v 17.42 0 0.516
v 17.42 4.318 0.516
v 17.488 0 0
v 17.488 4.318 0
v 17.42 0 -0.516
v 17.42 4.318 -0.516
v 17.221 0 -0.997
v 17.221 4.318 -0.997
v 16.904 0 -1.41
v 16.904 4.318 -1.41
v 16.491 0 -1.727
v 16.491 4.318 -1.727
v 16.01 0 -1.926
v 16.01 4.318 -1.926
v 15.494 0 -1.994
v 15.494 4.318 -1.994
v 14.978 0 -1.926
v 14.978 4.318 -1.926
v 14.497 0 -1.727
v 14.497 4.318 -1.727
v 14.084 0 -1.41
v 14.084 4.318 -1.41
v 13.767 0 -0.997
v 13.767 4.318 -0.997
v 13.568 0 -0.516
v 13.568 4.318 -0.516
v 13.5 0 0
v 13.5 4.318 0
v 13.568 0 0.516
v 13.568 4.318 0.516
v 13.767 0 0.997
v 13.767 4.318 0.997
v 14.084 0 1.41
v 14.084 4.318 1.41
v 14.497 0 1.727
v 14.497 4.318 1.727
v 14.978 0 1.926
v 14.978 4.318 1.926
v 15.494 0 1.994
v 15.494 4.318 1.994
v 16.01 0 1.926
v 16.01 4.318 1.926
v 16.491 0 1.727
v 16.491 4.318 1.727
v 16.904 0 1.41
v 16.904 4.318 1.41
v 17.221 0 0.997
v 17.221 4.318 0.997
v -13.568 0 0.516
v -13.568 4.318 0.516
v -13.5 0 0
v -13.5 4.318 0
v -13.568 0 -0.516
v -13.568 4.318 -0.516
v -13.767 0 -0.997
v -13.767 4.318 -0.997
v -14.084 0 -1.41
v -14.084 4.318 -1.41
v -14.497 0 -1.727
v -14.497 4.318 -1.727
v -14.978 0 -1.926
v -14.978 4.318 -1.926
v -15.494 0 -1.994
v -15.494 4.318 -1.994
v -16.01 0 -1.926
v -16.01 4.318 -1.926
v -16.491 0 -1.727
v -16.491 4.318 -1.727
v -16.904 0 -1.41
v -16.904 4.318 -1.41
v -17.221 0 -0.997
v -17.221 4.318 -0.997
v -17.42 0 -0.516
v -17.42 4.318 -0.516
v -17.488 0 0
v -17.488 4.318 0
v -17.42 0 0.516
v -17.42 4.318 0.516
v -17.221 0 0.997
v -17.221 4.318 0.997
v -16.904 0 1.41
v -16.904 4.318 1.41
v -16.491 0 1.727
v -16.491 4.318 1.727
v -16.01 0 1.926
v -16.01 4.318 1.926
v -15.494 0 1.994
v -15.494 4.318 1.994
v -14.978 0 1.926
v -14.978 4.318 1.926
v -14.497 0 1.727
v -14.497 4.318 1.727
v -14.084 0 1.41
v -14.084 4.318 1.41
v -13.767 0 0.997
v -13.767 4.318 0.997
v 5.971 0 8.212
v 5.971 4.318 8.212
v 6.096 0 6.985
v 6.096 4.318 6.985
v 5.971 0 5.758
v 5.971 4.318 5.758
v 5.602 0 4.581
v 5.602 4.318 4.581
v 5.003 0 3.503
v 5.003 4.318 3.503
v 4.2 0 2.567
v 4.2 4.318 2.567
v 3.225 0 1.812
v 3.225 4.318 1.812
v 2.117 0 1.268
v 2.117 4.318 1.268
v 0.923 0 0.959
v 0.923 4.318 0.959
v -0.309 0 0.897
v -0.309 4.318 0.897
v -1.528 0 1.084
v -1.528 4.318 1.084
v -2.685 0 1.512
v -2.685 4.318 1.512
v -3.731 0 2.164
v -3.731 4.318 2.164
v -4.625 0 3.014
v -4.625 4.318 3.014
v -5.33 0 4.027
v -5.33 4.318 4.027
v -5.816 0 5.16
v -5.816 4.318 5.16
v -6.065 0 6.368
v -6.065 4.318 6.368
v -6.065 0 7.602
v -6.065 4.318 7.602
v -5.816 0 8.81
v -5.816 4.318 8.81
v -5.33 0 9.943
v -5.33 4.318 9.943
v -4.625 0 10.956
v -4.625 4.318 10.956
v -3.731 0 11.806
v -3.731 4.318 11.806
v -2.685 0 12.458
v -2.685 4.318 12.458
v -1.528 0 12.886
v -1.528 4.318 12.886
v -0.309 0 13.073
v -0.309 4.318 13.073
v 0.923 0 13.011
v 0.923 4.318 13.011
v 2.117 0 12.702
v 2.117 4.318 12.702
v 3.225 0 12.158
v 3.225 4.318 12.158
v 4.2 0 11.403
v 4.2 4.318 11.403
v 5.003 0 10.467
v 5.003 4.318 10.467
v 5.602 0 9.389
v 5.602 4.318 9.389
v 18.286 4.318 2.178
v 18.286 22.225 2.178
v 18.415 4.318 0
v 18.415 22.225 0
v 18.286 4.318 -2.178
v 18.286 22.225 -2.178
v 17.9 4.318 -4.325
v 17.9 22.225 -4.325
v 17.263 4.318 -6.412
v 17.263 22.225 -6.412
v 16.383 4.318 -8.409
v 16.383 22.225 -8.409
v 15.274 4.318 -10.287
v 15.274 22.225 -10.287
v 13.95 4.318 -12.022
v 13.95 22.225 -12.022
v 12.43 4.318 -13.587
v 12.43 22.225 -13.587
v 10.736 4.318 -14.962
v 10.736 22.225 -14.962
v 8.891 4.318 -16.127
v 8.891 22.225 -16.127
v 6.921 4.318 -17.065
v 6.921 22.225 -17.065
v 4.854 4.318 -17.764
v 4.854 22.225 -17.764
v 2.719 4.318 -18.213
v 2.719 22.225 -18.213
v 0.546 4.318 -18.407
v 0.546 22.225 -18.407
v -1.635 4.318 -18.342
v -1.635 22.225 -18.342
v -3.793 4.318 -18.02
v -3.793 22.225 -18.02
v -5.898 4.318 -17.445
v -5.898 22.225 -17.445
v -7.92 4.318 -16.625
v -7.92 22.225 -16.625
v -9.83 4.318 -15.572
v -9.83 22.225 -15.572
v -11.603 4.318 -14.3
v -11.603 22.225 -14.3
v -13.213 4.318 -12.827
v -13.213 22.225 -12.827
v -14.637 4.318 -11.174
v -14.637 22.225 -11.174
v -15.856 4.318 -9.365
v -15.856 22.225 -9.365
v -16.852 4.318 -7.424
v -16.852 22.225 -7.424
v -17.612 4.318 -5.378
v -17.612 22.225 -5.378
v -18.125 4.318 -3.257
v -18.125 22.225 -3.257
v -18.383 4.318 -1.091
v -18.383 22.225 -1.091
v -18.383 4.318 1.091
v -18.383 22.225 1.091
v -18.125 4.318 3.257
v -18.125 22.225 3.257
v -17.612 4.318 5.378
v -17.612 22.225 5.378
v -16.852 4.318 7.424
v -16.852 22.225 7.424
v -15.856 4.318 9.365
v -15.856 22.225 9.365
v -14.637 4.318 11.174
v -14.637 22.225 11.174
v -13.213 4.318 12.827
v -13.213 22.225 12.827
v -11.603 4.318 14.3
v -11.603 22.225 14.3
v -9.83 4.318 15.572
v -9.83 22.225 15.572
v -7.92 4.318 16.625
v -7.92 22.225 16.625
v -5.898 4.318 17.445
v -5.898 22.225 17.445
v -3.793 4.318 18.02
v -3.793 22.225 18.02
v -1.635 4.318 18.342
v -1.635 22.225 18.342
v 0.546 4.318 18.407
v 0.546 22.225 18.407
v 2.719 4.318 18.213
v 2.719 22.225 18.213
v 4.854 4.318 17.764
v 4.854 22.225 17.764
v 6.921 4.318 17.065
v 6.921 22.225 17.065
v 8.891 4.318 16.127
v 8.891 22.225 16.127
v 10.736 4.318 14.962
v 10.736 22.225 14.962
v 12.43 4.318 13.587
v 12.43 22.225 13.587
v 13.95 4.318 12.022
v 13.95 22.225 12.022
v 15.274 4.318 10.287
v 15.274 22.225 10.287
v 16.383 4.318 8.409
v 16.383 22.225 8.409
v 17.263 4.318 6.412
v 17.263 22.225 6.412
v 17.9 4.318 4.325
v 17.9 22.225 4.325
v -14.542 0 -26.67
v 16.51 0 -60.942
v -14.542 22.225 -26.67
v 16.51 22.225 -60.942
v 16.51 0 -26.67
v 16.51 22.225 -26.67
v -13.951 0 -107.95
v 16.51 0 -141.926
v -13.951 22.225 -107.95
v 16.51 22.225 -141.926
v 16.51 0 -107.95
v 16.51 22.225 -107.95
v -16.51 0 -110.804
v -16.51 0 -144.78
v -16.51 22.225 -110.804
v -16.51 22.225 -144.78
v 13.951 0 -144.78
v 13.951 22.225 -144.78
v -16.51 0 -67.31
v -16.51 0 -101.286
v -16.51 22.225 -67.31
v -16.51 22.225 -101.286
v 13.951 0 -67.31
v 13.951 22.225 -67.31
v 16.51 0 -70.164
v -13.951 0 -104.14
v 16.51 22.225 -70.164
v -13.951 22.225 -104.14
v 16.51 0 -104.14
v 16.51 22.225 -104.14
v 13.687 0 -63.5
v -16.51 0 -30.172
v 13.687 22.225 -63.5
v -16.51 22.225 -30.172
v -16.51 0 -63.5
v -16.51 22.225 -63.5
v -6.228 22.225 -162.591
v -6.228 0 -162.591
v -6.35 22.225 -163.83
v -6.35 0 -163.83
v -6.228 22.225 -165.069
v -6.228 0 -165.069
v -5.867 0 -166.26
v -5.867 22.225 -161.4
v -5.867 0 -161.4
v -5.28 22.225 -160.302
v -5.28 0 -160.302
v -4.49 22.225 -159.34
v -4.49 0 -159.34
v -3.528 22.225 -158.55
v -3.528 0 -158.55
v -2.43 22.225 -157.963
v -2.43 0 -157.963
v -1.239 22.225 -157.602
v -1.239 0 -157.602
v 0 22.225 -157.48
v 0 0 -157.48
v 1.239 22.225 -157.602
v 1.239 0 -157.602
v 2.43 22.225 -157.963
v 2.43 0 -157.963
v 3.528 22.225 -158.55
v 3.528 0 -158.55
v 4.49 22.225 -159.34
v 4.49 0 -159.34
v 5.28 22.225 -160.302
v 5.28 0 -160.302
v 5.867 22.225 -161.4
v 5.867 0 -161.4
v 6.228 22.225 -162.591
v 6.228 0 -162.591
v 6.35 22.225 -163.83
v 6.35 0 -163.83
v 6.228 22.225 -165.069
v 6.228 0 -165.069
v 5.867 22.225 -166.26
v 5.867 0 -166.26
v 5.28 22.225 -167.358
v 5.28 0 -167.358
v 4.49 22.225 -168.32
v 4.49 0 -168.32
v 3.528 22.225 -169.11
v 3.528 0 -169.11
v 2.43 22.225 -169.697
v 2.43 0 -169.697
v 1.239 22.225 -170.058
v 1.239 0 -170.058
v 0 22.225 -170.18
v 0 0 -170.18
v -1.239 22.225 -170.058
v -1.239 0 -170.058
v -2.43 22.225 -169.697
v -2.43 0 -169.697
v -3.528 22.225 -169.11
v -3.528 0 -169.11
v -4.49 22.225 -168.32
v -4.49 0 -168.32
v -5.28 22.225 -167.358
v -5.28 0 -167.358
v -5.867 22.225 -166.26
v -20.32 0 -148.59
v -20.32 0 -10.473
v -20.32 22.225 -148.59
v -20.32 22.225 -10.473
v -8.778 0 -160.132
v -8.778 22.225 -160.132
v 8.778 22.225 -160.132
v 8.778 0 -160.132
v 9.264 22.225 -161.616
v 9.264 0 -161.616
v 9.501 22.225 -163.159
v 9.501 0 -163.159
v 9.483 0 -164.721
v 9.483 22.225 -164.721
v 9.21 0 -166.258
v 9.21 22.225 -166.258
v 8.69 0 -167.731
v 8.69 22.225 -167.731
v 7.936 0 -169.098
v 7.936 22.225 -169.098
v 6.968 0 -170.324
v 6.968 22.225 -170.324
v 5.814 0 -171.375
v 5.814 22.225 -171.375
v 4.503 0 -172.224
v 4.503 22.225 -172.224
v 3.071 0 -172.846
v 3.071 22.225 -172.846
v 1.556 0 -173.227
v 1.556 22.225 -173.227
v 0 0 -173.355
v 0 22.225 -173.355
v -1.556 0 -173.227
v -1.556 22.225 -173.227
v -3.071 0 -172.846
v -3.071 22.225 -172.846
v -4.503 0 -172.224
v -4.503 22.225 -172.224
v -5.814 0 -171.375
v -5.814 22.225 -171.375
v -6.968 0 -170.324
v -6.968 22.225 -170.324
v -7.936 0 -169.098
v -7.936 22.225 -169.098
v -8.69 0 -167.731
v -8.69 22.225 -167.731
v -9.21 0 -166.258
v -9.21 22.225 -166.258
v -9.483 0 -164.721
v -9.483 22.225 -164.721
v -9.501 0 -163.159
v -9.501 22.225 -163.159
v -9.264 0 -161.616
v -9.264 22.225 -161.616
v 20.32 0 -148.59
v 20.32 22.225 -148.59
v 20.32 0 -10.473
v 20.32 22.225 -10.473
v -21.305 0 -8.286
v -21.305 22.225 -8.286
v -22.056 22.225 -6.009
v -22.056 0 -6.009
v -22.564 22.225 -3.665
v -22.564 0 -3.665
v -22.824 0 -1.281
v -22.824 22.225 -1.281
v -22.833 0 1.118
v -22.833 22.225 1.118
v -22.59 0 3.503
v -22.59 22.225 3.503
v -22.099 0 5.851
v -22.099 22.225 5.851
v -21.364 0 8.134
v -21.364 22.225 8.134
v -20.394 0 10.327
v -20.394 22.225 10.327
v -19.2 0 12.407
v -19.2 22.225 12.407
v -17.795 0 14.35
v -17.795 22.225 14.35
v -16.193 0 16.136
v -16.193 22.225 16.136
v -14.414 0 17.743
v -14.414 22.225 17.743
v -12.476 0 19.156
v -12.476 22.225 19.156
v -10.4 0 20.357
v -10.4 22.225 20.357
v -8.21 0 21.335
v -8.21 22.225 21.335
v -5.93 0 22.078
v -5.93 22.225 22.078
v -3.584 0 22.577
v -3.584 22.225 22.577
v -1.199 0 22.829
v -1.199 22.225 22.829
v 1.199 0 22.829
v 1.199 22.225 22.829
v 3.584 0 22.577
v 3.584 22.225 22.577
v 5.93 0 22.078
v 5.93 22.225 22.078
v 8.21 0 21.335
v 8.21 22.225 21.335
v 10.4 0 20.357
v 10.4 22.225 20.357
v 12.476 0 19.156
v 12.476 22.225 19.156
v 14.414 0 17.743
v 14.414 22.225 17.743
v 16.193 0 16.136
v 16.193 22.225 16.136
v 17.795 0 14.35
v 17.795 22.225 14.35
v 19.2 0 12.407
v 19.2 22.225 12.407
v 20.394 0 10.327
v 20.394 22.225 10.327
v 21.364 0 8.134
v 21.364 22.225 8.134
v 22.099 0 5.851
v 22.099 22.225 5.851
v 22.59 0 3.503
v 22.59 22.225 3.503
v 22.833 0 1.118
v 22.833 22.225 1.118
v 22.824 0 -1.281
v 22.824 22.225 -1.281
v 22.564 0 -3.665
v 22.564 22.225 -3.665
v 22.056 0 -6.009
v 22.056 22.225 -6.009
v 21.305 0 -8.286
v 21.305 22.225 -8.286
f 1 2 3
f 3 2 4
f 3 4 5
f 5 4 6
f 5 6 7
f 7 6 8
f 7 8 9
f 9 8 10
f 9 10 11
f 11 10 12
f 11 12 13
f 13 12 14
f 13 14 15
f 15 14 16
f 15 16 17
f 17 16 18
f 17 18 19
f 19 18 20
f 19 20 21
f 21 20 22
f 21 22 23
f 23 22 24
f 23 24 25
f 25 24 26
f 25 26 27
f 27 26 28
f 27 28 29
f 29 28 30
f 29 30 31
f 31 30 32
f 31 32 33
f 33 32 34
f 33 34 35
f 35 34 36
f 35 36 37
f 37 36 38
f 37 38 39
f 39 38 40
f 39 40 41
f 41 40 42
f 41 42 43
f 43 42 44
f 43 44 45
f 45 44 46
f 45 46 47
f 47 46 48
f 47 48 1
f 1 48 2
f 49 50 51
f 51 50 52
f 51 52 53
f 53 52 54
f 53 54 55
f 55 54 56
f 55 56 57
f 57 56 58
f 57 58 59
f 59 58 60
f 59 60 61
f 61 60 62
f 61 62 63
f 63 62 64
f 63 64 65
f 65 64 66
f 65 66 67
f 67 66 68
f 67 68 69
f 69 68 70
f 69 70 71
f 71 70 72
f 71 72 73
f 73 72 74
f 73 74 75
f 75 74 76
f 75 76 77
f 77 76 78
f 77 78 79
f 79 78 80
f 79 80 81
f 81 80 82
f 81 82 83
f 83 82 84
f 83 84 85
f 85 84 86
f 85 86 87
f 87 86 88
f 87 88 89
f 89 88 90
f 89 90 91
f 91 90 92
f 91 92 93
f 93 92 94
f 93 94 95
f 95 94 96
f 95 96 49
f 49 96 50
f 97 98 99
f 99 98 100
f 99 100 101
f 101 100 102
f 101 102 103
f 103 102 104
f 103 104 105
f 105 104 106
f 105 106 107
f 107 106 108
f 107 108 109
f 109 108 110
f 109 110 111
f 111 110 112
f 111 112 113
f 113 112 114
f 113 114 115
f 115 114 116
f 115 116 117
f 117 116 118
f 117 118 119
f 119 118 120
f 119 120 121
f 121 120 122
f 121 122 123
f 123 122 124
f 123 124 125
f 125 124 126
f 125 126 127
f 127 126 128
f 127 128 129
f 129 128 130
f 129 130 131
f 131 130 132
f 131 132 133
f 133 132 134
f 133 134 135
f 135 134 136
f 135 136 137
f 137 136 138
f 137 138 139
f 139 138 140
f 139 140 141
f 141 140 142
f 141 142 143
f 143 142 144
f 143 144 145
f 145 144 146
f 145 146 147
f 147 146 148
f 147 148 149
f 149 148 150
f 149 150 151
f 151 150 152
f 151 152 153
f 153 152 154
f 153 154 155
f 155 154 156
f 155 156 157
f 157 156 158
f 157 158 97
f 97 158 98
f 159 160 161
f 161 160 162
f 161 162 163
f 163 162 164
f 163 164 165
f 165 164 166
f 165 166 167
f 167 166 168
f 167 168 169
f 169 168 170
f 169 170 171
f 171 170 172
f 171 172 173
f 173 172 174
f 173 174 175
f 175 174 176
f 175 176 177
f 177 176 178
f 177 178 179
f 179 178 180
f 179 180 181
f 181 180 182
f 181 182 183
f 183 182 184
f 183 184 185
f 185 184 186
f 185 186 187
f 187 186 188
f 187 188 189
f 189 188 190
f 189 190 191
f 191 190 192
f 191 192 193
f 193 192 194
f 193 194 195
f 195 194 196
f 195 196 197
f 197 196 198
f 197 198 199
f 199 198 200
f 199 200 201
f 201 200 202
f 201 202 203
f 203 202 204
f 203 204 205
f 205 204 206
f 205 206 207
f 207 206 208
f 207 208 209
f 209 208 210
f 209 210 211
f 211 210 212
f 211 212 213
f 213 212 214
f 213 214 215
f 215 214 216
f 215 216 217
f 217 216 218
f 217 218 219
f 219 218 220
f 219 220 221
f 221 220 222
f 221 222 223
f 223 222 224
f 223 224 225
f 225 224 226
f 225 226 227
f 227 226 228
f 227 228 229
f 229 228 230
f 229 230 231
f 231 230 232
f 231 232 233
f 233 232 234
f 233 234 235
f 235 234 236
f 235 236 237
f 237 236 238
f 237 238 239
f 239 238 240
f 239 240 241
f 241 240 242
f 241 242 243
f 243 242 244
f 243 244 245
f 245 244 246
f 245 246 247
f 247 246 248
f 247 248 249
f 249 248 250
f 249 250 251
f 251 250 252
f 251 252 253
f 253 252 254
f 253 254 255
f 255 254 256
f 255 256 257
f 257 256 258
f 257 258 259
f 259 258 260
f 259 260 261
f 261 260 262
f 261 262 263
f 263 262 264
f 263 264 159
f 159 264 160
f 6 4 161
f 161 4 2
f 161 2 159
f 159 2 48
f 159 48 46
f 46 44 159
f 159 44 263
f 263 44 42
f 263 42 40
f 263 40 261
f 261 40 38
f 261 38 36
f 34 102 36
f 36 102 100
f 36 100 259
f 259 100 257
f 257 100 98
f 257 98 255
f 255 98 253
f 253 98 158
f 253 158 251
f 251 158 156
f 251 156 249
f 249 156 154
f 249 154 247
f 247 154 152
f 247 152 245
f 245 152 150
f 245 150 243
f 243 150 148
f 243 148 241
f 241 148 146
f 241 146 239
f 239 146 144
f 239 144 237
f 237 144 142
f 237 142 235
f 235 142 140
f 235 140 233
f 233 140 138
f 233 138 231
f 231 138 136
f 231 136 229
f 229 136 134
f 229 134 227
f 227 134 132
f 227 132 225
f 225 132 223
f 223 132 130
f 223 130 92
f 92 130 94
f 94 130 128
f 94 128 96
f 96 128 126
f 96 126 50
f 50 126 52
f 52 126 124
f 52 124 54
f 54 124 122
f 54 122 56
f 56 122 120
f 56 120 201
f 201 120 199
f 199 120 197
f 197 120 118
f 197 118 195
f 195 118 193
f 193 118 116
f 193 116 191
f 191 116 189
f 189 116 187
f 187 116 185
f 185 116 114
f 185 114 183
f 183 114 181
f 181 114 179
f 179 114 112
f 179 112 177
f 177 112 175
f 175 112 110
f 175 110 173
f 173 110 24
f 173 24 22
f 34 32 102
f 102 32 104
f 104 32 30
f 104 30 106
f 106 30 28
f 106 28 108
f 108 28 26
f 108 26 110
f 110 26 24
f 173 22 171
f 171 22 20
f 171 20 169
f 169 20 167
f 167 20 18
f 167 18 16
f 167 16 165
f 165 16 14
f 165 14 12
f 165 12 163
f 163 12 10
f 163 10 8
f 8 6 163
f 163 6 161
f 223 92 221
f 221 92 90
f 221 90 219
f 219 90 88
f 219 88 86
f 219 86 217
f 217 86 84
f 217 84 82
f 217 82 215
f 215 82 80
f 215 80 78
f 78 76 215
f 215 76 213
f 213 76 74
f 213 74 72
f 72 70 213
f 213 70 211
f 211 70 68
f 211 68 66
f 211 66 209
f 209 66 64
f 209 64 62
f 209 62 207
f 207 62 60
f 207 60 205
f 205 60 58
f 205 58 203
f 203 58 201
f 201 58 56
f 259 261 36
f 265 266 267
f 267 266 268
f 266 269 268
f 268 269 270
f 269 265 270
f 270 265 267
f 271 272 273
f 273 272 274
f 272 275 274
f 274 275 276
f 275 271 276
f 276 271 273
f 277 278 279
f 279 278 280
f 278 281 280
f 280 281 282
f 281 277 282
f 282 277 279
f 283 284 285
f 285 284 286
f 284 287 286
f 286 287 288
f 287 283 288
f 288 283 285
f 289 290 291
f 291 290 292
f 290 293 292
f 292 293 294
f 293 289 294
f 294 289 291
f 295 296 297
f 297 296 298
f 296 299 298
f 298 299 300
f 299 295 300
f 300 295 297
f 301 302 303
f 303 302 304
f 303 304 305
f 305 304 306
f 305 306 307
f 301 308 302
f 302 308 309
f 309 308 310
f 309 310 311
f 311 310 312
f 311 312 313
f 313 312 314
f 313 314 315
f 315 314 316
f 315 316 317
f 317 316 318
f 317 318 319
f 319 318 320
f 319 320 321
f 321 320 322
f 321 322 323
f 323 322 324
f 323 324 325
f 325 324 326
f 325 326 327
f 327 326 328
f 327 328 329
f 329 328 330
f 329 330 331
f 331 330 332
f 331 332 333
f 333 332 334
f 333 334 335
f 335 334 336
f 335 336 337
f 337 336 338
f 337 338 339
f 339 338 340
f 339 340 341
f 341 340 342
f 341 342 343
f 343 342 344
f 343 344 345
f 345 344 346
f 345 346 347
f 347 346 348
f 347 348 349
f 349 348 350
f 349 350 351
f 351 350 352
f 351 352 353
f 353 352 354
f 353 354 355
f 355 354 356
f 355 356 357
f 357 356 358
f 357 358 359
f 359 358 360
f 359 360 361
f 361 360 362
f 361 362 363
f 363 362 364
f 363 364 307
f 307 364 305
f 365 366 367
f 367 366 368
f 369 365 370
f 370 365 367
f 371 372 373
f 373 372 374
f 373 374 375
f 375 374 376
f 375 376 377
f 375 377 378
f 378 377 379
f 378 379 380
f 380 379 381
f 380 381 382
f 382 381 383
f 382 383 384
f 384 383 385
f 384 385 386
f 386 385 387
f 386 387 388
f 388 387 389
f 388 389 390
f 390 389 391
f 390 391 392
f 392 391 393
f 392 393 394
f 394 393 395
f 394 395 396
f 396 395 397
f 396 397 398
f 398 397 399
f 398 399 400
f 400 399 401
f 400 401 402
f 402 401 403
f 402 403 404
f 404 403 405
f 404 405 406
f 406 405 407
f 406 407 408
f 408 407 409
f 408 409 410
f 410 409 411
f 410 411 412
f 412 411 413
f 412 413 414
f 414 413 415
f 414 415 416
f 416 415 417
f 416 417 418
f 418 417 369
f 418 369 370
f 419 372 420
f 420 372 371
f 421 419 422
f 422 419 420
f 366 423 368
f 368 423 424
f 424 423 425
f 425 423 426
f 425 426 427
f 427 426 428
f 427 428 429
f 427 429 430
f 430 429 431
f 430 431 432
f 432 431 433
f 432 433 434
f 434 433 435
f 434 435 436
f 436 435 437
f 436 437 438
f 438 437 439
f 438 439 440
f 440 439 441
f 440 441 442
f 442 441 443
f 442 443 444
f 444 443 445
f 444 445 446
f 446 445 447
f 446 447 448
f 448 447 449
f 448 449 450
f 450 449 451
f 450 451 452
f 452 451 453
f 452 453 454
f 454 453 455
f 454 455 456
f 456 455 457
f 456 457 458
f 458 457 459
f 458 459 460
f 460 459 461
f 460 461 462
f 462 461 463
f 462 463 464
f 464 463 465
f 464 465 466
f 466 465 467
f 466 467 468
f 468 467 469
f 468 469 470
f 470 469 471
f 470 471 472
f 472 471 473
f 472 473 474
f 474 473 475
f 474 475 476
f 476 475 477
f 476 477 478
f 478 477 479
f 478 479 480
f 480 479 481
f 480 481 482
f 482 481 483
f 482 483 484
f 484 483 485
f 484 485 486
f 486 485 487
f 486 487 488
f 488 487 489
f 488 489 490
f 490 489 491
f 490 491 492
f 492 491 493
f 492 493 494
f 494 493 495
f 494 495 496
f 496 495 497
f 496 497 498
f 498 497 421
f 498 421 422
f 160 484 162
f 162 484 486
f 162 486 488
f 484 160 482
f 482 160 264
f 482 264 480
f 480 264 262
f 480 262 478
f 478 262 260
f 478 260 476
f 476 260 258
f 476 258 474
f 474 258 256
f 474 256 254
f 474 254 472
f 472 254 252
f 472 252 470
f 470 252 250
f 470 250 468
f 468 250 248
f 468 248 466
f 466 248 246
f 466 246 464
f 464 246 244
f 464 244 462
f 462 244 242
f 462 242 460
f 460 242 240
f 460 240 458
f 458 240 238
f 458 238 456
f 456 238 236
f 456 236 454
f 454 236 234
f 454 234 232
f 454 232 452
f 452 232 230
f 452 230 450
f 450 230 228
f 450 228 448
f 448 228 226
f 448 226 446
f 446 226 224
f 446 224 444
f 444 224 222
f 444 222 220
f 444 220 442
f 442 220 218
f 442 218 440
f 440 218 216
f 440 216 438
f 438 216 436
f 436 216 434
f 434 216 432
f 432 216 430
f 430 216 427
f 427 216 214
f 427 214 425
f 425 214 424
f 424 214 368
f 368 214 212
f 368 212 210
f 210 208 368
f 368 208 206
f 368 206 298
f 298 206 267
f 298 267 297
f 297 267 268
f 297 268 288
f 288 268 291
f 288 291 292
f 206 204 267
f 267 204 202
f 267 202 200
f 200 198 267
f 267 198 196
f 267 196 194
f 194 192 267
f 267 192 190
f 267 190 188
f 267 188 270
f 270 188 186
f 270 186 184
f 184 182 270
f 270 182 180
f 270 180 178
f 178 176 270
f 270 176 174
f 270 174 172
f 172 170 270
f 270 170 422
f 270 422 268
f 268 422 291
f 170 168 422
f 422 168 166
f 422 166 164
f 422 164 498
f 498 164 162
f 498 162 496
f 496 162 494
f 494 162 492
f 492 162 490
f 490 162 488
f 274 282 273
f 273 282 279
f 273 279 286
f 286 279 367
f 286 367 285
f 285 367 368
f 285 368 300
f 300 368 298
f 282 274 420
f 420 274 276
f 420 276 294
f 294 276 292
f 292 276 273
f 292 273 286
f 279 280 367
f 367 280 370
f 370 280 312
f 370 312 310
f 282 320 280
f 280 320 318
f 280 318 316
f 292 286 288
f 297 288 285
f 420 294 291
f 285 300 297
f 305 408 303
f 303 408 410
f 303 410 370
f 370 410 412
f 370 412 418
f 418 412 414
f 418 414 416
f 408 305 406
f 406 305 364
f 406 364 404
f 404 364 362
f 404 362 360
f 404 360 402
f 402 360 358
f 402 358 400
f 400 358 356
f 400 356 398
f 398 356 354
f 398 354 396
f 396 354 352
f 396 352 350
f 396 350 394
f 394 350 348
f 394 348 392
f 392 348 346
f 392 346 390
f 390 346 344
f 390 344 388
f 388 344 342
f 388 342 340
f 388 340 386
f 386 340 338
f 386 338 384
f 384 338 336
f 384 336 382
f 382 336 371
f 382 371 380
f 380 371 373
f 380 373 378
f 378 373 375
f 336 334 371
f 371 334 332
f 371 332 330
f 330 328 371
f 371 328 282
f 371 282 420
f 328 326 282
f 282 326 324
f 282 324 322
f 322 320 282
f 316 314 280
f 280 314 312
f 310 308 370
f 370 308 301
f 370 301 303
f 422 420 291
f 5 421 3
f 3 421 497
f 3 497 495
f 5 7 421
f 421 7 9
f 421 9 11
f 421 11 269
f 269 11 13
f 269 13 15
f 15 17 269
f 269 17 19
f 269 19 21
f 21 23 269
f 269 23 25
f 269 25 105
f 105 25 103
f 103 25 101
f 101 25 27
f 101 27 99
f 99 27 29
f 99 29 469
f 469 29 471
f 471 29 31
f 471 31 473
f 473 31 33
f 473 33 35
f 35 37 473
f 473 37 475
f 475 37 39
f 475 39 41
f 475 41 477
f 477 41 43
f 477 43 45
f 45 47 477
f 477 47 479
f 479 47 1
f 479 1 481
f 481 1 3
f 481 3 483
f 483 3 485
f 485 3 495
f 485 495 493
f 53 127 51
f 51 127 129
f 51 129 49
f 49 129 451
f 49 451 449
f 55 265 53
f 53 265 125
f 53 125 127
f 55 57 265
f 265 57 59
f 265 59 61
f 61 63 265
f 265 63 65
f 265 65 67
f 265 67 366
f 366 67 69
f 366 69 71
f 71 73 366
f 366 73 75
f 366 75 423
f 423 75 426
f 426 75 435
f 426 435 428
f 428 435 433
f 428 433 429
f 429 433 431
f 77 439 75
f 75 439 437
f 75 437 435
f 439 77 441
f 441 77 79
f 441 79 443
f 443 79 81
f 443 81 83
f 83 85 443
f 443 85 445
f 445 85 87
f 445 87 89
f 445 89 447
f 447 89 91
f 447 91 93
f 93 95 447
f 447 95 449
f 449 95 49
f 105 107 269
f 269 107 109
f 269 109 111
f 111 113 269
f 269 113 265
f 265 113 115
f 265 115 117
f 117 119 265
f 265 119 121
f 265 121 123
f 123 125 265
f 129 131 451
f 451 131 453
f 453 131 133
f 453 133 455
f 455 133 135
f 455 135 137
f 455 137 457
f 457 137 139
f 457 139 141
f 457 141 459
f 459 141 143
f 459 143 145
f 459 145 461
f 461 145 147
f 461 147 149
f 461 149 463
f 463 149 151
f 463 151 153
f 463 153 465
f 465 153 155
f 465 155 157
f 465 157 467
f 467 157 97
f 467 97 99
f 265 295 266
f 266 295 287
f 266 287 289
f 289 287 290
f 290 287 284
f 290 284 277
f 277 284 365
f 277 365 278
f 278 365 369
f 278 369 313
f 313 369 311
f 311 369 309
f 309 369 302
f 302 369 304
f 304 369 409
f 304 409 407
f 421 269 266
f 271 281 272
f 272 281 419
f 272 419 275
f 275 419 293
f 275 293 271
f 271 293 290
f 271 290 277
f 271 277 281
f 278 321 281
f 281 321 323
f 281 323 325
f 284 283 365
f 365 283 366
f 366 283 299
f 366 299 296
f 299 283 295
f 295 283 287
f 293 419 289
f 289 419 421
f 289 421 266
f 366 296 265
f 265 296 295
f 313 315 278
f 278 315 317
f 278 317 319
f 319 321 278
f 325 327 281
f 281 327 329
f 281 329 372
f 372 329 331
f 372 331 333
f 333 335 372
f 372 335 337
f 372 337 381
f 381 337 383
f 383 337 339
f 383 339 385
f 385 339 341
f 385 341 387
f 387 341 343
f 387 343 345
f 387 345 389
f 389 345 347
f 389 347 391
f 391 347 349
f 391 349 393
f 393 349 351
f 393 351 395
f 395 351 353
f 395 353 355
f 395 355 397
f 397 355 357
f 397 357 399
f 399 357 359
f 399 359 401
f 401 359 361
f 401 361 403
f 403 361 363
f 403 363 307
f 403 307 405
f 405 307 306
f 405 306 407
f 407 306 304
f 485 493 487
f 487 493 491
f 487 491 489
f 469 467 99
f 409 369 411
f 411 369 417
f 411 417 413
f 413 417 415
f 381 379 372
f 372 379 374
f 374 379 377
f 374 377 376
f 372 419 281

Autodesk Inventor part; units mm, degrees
ref_plane "YZ Plane" through (0, 0, 0) normal (1, 0, 0) x (0, 1, 0)
ref_plane "XZ Plane" through (0, 0, 0) normal (0, 1, 0) x (-1, 0, 0)
ref_plane "XY Plane" through (0, 0, 0) normal (0, 0, 1) x (1, 0, 0)
sketch "Sketch1" plane through (0, 0, 0) normal (0, 1, 0) x (-1, 0, 0)
  circle A0 centre (0, 0) radius 22.86
  line L0 (14.5416, -26.67) -> (-16.51, -26.67)
  line L1 (-20.32, -15.24) -> (-20.32, -55.88)
  line L2 (-13.6865, -63.5) -> (16.51, -63.5)
  line L3 (20.32, -55.88) -> (20.32, -15.24)
  line L4 (16.51, -67.31) -> (-16.51, -67.31)
  line L5 (-20.32, -59.69) -> (-20.32, -100.33)
  line L6 (-16.51, -104.14) -> (13.9515, -104.14)
  line L7 (20.32, -100.33) -> (20.32, -59.69)
  line L8 (13.9515, -107.95) -> (-16.51, -107.95)
  line L9 (-20.32, -104.14) -> (-20.32, -144.78)
  line L10 (20.32, -144.78) -> (20.32, -104.14)
  line L11 (20.32, -15.24) -> (20.32, -10.4727)
  circle A1 centre (0, -163.83) radius 6.35
  line L12 (-20.32, -15.24) -> (-20.32, -10.4727)
  line L13 (20.32, -55.88) -> (20.32, -59.69)
  line L14 (20.32, -100.33) -> (20.32, -104.14)
  line L15 (-20.32, -55.88) -> (-20.32, -59.69)
  line L16 (-20.32, -100.33) -> (-20.32, -104.14)
  line L17 (20.32, -144.78) -> (20.32, -148.59)
  line L18 (-20.32, -144.78) -> (-20.32, -148.59)
  line L19 (20.32, -148.59) -> (8.7779, -160.1321)
  line L20 (-20.32, -148.59) -> (-8.7779, -160.1321)
  line L21 (16.51, -30.1719) -> (16.51, -63.5)
  line L22 (-16.51, -26.67) -> (-16.51, -60.9418)
  line L23 (16.51, -67.31) -> (16.51, -101.2863)
  line L24 (-16.51, -67.31) -> (-16.51, -104.14)
  line L25 (16.51, -110.8037) -> (16.51, -144.78)
  line L26 (-16.51, -141.9263) -> (-16.51, -107.95)
  arc A2 (-8.7779, -160.1321) -> (8.7779, -160.1321) centre (0, -163.83) ccw
  line L27 (14.5416, -26.67) -> (-16.51, -60.9418)
  line L28 (16.9388, -26.8614) -> (16.51, -27.3347)
  line L29 (17.3651, -29.2282) -> (-13.6865, -63.5)
  line L30 (-13.9515, -67.31) -> (16.51, -101.2863)
  line L31 (-16.51, -70.1637) -> (13.9515, -104.14)
  line L32 (13.9515, -107.95) -> (-16.51, -141.9263)
  line L33 (16.51, -110.8037) -> (-13.9515, -144.78)
  line L34 (-19.0685, -144.78) -> (-16.51, -144.78)
  line L35 (-13.9515, -144.78) -> (16.51, -144.78)
  dimension "d0" = 45.72
  dimension "d2" = 26.67
  dimension "d3" = 36.83
  dimension "d5" = 20.32
  dimension "d6" = 3.81
  dimension "d7" = 40.64
  dimension "d8" = 3.81
  dimension "d10" = 12.7
  dimension "d11" = 3.81
  dimension "d12" = 3.81
  dimension "d13" = 135
  dimension "d14" = 3.81
  dimension "d15" = 3.81
  dimension "d16" = 3.81
  dimension "d17" = 36.83
  dimension "d19" = 94.2927
  dimension "d20" = 62.8618
  dimension "d21" = 123.0295
  dimension "d22" = 94.2927
  dimension "d23" = 91.5986
  dimension "d24" = 62.8618
  dimension "d25" = 3.81
  dimension "d26" = 36.83
  dimension "d27" = 65.5559
  dimension "d28" = 60.1677
  dimension "d29" = 19.05
  dimension "d32" = 1.905
  dimension "d37" = 42.178
  dimension "d38" = 138.122
  dimension "d39" = 138.122
  dimension "d40" = 118.11
  dimension "d41" = 36.83
  dimension "d42" = 0
  dimension "d43" = 3.81
  dimension "d44" = 3.81
  dimension "d45" = 86.2593
  dimension "d46" = 55.3203
  dimension "d47" = 3.3812
  dimension "d48" = 11.5421
  dimension "d49" = 36.83
  dimension "d50" = 119.4374
  dimension "d51" = 119.4374
  dimension "d52" = 20.32
extrude "Extrusion1" add sketch "Sketch1" along normal blind 22.225
sketch "Sketch2" plane through (0, 22.225, 0) normal (0, 1, 0) x (1, 0, 0)
  circle A0 centre (0, 0) radius 18.415
  dimension "d55" = 36.83
extrude "Extrusion2" cut sketch "Sketch2" against normal blind 17.907
sketch "Sketch3" plane through (0, 4.318, 0) normal (0, 1, 0) x (1, 0, 0)
  circle A0 centre (0, -6.985) radius 6.096
  line L0 (0, 0) -> (0, -18.9723)
  arc A1 (-20.32, 10.4727) -> (20.32, 10.4727) centre (0, 0) ccw projected
  line L1 (-15.494, 0) -> (15.494, 0)
  circle A2 centre (-15.494, 0) radius 1.9939
  circle A3 centre (15.494, 0) radius 1.9939
  point P0 (0, -22.86)
  dimension "d58" = 6.985
  dimension "d59" = 12.192
  dimension "d61" = 3.9878
  dimension "d62" = 30.988
  dimension "d63" = 15.494
  dimension "d65" = 18.9722
extrude "Extrusion3" cut sketch "Sketch3" against normal blind 36.322
properties part number "leg 3.0"
